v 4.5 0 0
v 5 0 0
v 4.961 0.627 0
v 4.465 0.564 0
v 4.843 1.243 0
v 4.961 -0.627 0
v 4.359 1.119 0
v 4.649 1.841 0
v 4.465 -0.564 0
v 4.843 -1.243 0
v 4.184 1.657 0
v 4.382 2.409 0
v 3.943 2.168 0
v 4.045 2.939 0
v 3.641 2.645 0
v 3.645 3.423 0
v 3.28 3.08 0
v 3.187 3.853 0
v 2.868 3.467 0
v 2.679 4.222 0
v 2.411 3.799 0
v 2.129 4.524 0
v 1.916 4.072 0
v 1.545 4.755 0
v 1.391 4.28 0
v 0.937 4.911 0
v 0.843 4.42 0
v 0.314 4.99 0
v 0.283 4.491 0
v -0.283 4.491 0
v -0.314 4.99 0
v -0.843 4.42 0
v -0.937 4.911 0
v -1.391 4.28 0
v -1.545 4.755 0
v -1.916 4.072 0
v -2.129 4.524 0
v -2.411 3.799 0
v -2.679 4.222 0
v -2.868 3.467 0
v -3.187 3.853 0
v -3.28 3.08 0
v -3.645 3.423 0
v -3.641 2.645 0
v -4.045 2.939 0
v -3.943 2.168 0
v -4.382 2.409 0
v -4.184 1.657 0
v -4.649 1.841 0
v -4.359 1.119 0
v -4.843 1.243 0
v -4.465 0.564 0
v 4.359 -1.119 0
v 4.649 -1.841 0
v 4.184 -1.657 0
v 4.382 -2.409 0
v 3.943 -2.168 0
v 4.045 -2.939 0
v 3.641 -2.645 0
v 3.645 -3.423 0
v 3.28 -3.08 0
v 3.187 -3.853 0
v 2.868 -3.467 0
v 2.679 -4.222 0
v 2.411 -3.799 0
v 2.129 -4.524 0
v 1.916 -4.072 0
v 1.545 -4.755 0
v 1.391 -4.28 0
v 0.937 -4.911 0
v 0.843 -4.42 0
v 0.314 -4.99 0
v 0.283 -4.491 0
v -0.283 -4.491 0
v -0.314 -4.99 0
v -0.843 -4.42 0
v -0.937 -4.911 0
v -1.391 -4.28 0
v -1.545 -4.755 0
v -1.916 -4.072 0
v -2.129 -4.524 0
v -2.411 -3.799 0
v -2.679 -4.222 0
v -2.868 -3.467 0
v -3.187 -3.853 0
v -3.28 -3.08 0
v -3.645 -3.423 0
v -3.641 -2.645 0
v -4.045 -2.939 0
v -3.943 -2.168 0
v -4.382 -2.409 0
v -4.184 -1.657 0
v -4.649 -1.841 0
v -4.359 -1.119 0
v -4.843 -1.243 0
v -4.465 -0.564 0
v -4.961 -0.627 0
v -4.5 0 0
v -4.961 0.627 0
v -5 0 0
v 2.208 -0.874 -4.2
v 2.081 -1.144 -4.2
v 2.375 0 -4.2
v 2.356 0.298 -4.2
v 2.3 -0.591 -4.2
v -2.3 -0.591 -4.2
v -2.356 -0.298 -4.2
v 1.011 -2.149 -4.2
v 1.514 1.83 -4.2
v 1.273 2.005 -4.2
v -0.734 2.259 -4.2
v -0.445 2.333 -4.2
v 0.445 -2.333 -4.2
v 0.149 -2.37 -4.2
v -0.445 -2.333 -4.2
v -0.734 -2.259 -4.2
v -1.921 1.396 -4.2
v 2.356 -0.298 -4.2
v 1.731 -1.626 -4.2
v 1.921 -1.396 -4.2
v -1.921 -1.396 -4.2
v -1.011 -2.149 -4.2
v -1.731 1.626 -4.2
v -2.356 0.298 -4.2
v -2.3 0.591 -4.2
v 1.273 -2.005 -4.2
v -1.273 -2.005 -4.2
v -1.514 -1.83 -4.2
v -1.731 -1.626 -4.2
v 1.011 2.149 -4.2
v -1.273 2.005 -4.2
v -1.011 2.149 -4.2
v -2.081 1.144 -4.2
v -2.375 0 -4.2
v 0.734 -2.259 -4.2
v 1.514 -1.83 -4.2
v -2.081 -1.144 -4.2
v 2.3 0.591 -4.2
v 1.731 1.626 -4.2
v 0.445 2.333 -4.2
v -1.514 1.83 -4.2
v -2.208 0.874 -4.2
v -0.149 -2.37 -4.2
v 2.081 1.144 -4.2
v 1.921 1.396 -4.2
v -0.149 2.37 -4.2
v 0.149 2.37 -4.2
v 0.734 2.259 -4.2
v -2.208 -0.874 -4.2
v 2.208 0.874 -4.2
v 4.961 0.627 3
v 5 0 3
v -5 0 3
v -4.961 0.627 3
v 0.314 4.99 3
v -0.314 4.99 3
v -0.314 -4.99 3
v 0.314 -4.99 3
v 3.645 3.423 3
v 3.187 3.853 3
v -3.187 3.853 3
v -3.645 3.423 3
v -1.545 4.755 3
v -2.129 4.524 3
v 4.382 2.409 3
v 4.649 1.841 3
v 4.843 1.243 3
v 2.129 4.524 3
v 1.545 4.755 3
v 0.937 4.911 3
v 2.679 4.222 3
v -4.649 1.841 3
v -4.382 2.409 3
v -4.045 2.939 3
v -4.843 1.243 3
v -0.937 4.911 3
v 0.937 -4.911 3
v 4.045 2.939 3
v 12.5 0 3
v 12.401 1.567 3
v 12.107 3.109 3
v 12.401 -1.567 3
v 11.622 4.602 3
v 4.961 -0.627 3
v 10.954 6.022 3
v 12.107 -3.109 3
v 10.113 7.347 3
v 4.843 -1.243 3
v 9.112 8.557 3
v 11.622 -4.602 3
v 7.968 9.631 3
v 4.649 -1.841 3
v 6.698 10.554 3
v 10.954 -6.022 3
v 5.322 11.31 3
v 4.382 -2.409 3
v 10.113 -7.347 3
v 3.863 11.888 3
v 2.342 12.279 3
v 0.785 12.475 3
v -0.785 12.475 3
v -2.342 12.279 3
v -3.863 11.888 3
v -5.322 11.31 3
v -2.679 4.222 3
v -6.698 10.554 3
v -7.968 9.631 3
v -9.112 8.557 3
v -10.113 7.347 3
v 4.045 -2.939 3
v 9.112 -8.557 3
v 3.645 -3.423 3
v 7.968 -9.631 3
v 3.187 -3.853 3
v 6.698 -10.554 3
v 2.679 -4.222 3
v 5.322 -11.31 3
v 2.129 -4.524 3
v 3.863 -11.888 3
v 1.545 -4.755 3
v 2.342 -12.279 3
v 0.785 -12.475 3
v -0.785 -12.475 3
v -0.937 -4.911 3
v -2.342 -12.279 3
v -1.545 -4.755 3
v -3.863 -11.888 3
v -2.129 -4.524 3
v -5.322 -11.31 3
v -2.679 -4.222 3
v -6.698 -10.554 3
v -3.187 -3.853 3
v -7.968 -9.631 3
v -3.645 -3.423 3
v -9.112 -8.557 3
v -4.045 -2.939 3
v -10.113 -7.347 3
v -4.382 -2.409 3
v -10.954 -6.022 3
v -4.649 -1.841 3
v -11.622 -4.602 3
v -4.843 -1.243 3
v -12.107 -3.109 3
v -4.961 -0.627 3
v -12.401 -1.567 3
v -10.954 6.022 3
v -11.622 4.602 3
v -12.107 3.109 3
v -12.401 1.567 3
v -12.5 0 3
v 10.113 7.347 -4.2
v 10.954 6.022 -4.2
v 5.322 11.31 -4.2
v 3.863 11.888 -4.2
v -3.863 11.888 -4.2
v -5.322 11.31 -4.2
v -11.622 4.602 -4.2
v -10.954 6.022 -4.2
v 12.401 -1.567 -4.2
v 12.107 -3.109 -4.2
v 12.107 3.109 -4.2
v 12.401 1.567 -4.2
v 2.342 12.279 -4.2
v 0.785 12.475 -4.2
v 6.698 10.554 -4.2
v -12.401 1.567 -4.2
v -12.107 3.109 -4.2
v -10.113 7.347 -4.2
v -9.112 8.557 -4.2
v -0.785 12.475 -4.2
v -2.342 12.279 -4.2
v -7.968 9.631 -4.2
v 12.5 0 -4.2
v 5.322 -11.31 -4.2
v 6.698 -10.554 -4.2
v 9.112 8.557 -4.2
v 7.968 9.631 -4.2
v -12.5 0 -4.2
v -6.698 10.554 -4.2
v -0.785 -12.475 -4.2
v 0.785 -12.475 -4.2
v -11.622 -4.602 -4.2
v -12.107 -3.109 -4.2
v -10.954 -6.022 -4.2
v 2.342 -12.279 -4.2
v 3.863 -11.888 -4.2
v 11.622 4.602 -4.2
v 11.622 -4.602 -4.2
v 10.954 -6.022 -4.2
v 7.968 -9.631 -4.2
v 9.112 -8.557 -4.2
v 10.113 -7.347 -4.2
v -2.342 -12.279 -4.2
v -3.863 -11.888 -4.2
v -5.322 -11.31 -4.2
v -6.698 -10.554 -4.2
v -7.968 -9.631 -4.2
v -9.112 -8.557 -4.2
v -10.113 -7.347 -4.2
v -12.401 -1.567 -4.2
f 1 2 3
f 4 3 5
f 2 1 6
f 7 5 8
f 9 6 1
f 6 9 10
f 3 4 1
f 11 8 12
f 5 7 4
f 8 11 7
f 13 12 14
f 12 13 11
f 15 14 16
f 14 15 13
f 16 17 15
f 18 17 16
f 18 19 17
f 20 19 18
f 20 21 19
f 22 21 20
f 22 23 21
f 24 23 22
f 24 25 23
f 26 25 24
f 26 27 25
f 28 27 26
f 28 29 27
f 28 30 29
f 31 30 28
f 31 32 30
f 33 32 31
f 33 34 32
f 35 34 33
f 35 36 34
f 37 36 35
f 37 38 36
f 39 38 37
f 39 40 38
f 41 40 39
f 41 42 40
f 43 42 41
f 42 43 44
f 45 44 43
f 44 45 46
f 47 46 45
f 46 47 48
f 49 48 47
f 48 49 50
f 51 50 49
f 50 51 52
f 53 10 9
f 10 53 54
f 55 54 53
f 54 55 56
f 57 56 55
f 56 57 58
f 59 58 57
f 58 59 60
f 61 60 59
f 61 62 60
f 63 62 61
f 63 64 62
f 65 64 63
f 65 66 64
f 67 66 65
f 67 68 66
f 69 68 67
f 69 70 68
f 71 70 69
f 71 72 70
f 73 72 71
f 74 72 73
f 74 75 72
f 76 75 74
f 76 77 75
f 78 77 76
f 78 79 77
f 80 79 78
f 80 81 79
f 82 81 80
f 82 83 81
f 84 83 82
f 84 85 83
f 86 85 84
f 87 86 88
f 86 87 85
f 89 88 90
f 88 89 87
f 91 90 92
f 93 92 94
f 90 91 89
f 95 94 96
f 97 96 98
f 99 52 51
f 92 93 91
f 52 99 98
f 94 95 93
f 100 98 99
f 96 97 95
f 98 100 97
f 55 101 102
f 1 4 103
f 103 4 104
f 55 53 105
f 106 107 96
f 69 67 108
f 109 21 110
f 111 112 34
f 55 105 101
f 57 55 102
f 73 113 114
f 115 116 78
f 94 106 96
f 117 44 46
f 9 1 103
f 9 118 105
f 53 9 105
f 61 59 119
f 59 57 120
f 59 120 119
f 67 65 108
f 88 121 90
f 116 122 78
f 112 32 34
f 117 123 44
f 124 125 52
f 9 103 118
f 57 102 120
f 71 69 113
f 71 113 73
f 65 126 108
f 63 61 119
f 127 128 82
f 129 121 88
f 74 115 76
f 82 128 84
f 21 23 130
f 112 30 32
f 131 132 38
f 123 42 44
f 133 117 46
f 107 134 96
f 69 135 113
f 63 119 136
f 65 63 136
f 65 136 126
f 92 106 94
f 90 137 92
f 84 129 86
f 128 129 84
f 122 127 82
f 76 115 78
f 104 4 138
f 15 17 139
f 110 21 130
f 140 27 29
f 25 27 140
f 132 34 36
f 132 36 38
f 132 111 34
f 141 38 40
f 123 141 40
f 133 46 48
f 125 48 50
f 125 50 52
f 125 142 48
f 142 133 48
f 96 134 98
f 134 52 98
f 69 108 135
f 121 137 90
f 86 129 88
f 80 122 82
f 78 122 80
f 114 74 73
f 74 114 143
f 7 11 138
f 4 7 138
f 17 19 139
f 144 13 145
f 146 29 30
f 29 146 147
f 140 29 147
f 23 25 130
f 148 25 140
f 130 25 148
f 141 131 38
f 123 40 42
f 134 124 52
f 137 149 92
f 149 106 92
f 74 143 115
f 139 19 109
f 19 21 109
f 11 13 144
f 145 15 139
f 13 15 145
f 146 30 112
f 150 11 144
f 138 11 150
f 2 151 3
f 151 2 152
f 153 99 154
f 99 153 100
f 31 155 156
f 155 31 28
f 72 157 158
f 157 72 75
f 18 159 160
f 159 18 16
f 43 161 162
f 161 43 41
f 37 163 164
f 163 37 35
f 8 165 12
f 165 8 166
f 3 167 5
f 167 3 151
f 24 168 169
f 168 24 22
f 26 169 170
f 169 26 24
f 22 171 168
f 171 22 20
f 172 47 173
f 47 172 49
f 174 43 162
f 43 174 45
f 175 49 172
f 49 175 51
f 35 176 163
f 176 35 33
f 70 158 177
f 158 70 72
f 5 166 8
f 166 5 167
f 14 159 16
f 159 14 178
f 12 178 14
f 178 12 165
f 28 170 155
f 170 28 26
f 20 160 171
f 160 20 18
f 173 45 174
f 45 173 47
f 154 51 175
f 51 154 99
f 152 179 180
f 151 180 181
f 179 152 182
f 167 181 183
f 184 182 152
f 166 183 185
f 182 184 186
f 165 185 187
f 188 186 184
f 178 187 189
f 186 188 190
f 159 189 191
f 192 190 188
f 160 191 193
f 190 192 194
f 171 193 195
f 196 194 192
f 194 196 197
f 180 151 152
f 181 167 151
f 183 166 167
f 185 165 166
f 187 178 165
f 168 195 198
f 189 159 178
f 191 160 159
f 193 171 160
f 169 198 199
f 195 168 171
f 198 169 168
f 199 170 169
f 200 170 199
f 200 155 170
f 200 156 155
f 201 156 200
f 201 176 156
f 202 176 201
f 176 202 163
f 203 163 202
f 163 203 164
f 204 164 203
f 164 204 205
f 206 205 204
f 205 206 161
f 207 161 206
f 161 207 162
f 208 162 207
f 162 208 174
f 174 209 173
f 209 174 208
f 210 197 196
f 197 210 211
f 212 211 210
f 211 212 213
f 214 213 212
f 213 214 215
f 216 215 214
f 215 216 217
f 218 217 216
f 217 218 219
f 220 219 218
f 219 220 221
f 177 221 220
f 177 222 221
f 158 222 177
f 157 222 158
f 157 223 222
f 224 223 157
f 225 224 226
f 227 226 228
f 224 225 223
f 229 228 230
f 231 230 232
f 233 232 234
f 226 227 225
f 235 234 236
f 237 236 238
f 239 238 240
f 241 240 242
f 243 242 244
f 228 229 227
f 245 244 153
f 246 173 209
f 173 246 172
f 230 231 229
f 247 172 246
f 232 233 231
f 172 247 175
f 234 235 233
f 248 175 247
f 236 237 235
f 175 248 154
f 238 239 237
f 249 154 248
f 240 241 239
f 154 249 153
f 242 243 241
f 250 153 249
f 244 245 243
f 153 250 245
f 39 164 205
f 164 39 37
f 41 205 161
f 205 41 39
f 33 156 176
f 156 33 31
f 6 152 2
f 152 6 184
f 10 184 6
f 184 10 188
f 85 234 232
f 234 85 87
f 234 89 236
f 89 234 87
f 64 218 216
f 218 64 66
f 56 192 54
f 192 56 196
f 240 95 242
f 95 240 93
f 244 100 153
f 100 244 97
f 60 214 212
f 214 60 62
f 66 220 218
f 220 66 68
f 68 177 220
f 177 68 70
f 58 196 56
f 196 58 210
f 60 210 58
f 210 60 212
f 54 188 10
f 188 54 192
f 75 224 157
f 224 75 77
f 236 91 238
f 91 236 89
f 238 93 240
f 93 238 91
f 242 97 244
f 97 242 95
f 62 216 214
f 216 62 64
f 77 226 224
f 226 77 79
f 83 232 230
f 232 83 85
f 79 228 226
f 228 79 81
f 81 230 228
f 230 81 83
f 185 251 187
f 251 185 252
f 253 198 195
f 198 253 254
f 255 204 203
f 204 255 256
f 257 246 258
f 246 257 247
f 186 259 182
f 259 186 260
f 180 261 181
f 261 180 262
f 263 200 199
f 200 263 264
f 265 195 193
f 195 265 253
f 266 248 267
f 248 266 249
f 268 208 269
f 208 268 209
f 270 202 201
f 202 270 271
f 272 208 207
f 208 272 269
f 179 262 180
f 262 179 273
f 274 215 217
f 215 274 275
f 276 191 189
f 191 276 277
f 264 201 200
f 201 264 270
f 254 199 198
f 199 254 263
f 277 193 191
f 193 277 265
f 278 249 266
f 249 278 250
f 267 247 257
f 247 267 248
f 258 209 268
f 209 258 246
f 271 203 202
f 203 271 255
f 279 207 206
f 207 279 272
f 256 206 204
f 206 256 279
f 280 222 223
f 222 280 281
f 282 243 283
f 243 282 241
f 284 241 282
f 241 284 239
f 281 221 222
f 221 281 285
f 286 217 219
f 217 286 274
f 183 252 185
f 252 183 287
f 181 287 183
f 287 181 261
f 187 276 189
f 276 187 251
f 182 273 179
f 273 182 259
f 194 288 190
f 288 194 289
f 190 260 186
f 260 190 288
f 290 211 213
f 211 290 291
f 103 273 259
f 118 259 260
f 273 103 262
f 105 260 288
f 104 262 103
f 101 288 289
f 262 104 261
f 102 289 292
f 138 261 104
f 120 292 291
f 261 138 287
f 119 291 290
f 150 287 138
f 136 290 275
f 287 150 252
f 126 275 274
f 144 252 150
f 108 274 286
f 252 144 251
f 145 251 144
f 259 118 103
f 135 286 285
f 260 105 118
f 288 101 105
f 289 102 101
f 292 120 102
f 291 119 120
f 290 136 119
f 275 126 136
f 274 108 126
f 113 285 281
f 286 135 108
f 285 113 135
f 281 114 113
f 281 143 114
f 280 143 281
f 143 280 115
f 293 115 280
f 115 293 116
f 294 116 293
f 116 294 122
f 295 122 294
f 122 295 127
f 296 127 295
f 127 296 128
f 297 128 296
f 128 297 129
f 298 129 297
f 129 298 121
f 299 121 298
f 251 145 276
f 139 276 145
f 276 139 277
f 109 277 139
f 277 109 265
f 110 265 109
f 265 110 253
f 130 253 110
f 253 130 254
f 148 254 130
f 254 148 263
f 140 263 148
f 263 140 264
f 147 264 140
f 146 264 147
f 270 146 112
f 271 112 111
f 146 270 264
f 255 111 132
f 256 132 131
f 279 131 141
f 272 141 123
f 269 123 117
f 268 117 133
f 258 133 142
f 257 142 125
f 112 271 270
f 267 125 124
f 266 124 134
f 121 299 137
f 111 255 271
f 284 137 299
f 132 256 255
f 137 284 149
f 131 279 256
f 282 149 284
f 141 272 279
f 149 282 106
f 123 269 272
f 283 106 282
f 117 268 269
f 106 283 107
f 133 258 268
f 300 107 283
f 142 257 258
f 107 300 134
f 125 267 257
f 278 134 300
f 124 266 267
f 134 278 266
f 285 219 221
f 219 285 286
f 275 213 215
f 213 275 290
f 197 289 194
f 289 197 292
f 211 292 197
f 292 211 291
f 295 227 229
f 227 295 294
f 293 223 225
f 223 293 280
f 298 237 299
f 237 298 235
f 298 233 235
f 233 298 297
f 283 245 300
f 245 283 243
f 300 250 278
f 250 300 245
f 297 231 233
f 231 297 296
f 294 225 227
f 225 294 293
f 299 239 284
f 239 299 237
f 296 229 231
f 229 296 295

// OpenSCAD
$fn = 50;


difference() {
	union() {
		translate(v = [0, 0, -4.2000000000]) {
			cylinder(h = 7.2000000000, r = 12.5000000000);
		}
	}
	union() {
		translate(v = [0, 0, 0]) {
			rotate(a = [0, 0, 0]) {
				difference() {
					union() {
						translate(v = [0, 0, -7.2000000000]) {
							cylinder(h = 7.2000000000, r = 2.2500000000);
						}
						translate(v = [0, 0, -4.2000000000]) {
							cylinder(h = 4.2000000000, r1 = 2.3750000000, r2 = 4.5000000000);
						}
						translate(v = [0, 0, -7.2000000000]) {
							cylinder(h = 7.2000000000, r = 2.3750000000);
						}
						translate(v = [0, 0, -7.2000000000]) {
							cylinder(h = 7.2000000000, r = 2.2500000000);
						}
					}
					union();
				}
			}
		}
		#cylinder(h = 3, r = 5.0000000000);
	}
}
